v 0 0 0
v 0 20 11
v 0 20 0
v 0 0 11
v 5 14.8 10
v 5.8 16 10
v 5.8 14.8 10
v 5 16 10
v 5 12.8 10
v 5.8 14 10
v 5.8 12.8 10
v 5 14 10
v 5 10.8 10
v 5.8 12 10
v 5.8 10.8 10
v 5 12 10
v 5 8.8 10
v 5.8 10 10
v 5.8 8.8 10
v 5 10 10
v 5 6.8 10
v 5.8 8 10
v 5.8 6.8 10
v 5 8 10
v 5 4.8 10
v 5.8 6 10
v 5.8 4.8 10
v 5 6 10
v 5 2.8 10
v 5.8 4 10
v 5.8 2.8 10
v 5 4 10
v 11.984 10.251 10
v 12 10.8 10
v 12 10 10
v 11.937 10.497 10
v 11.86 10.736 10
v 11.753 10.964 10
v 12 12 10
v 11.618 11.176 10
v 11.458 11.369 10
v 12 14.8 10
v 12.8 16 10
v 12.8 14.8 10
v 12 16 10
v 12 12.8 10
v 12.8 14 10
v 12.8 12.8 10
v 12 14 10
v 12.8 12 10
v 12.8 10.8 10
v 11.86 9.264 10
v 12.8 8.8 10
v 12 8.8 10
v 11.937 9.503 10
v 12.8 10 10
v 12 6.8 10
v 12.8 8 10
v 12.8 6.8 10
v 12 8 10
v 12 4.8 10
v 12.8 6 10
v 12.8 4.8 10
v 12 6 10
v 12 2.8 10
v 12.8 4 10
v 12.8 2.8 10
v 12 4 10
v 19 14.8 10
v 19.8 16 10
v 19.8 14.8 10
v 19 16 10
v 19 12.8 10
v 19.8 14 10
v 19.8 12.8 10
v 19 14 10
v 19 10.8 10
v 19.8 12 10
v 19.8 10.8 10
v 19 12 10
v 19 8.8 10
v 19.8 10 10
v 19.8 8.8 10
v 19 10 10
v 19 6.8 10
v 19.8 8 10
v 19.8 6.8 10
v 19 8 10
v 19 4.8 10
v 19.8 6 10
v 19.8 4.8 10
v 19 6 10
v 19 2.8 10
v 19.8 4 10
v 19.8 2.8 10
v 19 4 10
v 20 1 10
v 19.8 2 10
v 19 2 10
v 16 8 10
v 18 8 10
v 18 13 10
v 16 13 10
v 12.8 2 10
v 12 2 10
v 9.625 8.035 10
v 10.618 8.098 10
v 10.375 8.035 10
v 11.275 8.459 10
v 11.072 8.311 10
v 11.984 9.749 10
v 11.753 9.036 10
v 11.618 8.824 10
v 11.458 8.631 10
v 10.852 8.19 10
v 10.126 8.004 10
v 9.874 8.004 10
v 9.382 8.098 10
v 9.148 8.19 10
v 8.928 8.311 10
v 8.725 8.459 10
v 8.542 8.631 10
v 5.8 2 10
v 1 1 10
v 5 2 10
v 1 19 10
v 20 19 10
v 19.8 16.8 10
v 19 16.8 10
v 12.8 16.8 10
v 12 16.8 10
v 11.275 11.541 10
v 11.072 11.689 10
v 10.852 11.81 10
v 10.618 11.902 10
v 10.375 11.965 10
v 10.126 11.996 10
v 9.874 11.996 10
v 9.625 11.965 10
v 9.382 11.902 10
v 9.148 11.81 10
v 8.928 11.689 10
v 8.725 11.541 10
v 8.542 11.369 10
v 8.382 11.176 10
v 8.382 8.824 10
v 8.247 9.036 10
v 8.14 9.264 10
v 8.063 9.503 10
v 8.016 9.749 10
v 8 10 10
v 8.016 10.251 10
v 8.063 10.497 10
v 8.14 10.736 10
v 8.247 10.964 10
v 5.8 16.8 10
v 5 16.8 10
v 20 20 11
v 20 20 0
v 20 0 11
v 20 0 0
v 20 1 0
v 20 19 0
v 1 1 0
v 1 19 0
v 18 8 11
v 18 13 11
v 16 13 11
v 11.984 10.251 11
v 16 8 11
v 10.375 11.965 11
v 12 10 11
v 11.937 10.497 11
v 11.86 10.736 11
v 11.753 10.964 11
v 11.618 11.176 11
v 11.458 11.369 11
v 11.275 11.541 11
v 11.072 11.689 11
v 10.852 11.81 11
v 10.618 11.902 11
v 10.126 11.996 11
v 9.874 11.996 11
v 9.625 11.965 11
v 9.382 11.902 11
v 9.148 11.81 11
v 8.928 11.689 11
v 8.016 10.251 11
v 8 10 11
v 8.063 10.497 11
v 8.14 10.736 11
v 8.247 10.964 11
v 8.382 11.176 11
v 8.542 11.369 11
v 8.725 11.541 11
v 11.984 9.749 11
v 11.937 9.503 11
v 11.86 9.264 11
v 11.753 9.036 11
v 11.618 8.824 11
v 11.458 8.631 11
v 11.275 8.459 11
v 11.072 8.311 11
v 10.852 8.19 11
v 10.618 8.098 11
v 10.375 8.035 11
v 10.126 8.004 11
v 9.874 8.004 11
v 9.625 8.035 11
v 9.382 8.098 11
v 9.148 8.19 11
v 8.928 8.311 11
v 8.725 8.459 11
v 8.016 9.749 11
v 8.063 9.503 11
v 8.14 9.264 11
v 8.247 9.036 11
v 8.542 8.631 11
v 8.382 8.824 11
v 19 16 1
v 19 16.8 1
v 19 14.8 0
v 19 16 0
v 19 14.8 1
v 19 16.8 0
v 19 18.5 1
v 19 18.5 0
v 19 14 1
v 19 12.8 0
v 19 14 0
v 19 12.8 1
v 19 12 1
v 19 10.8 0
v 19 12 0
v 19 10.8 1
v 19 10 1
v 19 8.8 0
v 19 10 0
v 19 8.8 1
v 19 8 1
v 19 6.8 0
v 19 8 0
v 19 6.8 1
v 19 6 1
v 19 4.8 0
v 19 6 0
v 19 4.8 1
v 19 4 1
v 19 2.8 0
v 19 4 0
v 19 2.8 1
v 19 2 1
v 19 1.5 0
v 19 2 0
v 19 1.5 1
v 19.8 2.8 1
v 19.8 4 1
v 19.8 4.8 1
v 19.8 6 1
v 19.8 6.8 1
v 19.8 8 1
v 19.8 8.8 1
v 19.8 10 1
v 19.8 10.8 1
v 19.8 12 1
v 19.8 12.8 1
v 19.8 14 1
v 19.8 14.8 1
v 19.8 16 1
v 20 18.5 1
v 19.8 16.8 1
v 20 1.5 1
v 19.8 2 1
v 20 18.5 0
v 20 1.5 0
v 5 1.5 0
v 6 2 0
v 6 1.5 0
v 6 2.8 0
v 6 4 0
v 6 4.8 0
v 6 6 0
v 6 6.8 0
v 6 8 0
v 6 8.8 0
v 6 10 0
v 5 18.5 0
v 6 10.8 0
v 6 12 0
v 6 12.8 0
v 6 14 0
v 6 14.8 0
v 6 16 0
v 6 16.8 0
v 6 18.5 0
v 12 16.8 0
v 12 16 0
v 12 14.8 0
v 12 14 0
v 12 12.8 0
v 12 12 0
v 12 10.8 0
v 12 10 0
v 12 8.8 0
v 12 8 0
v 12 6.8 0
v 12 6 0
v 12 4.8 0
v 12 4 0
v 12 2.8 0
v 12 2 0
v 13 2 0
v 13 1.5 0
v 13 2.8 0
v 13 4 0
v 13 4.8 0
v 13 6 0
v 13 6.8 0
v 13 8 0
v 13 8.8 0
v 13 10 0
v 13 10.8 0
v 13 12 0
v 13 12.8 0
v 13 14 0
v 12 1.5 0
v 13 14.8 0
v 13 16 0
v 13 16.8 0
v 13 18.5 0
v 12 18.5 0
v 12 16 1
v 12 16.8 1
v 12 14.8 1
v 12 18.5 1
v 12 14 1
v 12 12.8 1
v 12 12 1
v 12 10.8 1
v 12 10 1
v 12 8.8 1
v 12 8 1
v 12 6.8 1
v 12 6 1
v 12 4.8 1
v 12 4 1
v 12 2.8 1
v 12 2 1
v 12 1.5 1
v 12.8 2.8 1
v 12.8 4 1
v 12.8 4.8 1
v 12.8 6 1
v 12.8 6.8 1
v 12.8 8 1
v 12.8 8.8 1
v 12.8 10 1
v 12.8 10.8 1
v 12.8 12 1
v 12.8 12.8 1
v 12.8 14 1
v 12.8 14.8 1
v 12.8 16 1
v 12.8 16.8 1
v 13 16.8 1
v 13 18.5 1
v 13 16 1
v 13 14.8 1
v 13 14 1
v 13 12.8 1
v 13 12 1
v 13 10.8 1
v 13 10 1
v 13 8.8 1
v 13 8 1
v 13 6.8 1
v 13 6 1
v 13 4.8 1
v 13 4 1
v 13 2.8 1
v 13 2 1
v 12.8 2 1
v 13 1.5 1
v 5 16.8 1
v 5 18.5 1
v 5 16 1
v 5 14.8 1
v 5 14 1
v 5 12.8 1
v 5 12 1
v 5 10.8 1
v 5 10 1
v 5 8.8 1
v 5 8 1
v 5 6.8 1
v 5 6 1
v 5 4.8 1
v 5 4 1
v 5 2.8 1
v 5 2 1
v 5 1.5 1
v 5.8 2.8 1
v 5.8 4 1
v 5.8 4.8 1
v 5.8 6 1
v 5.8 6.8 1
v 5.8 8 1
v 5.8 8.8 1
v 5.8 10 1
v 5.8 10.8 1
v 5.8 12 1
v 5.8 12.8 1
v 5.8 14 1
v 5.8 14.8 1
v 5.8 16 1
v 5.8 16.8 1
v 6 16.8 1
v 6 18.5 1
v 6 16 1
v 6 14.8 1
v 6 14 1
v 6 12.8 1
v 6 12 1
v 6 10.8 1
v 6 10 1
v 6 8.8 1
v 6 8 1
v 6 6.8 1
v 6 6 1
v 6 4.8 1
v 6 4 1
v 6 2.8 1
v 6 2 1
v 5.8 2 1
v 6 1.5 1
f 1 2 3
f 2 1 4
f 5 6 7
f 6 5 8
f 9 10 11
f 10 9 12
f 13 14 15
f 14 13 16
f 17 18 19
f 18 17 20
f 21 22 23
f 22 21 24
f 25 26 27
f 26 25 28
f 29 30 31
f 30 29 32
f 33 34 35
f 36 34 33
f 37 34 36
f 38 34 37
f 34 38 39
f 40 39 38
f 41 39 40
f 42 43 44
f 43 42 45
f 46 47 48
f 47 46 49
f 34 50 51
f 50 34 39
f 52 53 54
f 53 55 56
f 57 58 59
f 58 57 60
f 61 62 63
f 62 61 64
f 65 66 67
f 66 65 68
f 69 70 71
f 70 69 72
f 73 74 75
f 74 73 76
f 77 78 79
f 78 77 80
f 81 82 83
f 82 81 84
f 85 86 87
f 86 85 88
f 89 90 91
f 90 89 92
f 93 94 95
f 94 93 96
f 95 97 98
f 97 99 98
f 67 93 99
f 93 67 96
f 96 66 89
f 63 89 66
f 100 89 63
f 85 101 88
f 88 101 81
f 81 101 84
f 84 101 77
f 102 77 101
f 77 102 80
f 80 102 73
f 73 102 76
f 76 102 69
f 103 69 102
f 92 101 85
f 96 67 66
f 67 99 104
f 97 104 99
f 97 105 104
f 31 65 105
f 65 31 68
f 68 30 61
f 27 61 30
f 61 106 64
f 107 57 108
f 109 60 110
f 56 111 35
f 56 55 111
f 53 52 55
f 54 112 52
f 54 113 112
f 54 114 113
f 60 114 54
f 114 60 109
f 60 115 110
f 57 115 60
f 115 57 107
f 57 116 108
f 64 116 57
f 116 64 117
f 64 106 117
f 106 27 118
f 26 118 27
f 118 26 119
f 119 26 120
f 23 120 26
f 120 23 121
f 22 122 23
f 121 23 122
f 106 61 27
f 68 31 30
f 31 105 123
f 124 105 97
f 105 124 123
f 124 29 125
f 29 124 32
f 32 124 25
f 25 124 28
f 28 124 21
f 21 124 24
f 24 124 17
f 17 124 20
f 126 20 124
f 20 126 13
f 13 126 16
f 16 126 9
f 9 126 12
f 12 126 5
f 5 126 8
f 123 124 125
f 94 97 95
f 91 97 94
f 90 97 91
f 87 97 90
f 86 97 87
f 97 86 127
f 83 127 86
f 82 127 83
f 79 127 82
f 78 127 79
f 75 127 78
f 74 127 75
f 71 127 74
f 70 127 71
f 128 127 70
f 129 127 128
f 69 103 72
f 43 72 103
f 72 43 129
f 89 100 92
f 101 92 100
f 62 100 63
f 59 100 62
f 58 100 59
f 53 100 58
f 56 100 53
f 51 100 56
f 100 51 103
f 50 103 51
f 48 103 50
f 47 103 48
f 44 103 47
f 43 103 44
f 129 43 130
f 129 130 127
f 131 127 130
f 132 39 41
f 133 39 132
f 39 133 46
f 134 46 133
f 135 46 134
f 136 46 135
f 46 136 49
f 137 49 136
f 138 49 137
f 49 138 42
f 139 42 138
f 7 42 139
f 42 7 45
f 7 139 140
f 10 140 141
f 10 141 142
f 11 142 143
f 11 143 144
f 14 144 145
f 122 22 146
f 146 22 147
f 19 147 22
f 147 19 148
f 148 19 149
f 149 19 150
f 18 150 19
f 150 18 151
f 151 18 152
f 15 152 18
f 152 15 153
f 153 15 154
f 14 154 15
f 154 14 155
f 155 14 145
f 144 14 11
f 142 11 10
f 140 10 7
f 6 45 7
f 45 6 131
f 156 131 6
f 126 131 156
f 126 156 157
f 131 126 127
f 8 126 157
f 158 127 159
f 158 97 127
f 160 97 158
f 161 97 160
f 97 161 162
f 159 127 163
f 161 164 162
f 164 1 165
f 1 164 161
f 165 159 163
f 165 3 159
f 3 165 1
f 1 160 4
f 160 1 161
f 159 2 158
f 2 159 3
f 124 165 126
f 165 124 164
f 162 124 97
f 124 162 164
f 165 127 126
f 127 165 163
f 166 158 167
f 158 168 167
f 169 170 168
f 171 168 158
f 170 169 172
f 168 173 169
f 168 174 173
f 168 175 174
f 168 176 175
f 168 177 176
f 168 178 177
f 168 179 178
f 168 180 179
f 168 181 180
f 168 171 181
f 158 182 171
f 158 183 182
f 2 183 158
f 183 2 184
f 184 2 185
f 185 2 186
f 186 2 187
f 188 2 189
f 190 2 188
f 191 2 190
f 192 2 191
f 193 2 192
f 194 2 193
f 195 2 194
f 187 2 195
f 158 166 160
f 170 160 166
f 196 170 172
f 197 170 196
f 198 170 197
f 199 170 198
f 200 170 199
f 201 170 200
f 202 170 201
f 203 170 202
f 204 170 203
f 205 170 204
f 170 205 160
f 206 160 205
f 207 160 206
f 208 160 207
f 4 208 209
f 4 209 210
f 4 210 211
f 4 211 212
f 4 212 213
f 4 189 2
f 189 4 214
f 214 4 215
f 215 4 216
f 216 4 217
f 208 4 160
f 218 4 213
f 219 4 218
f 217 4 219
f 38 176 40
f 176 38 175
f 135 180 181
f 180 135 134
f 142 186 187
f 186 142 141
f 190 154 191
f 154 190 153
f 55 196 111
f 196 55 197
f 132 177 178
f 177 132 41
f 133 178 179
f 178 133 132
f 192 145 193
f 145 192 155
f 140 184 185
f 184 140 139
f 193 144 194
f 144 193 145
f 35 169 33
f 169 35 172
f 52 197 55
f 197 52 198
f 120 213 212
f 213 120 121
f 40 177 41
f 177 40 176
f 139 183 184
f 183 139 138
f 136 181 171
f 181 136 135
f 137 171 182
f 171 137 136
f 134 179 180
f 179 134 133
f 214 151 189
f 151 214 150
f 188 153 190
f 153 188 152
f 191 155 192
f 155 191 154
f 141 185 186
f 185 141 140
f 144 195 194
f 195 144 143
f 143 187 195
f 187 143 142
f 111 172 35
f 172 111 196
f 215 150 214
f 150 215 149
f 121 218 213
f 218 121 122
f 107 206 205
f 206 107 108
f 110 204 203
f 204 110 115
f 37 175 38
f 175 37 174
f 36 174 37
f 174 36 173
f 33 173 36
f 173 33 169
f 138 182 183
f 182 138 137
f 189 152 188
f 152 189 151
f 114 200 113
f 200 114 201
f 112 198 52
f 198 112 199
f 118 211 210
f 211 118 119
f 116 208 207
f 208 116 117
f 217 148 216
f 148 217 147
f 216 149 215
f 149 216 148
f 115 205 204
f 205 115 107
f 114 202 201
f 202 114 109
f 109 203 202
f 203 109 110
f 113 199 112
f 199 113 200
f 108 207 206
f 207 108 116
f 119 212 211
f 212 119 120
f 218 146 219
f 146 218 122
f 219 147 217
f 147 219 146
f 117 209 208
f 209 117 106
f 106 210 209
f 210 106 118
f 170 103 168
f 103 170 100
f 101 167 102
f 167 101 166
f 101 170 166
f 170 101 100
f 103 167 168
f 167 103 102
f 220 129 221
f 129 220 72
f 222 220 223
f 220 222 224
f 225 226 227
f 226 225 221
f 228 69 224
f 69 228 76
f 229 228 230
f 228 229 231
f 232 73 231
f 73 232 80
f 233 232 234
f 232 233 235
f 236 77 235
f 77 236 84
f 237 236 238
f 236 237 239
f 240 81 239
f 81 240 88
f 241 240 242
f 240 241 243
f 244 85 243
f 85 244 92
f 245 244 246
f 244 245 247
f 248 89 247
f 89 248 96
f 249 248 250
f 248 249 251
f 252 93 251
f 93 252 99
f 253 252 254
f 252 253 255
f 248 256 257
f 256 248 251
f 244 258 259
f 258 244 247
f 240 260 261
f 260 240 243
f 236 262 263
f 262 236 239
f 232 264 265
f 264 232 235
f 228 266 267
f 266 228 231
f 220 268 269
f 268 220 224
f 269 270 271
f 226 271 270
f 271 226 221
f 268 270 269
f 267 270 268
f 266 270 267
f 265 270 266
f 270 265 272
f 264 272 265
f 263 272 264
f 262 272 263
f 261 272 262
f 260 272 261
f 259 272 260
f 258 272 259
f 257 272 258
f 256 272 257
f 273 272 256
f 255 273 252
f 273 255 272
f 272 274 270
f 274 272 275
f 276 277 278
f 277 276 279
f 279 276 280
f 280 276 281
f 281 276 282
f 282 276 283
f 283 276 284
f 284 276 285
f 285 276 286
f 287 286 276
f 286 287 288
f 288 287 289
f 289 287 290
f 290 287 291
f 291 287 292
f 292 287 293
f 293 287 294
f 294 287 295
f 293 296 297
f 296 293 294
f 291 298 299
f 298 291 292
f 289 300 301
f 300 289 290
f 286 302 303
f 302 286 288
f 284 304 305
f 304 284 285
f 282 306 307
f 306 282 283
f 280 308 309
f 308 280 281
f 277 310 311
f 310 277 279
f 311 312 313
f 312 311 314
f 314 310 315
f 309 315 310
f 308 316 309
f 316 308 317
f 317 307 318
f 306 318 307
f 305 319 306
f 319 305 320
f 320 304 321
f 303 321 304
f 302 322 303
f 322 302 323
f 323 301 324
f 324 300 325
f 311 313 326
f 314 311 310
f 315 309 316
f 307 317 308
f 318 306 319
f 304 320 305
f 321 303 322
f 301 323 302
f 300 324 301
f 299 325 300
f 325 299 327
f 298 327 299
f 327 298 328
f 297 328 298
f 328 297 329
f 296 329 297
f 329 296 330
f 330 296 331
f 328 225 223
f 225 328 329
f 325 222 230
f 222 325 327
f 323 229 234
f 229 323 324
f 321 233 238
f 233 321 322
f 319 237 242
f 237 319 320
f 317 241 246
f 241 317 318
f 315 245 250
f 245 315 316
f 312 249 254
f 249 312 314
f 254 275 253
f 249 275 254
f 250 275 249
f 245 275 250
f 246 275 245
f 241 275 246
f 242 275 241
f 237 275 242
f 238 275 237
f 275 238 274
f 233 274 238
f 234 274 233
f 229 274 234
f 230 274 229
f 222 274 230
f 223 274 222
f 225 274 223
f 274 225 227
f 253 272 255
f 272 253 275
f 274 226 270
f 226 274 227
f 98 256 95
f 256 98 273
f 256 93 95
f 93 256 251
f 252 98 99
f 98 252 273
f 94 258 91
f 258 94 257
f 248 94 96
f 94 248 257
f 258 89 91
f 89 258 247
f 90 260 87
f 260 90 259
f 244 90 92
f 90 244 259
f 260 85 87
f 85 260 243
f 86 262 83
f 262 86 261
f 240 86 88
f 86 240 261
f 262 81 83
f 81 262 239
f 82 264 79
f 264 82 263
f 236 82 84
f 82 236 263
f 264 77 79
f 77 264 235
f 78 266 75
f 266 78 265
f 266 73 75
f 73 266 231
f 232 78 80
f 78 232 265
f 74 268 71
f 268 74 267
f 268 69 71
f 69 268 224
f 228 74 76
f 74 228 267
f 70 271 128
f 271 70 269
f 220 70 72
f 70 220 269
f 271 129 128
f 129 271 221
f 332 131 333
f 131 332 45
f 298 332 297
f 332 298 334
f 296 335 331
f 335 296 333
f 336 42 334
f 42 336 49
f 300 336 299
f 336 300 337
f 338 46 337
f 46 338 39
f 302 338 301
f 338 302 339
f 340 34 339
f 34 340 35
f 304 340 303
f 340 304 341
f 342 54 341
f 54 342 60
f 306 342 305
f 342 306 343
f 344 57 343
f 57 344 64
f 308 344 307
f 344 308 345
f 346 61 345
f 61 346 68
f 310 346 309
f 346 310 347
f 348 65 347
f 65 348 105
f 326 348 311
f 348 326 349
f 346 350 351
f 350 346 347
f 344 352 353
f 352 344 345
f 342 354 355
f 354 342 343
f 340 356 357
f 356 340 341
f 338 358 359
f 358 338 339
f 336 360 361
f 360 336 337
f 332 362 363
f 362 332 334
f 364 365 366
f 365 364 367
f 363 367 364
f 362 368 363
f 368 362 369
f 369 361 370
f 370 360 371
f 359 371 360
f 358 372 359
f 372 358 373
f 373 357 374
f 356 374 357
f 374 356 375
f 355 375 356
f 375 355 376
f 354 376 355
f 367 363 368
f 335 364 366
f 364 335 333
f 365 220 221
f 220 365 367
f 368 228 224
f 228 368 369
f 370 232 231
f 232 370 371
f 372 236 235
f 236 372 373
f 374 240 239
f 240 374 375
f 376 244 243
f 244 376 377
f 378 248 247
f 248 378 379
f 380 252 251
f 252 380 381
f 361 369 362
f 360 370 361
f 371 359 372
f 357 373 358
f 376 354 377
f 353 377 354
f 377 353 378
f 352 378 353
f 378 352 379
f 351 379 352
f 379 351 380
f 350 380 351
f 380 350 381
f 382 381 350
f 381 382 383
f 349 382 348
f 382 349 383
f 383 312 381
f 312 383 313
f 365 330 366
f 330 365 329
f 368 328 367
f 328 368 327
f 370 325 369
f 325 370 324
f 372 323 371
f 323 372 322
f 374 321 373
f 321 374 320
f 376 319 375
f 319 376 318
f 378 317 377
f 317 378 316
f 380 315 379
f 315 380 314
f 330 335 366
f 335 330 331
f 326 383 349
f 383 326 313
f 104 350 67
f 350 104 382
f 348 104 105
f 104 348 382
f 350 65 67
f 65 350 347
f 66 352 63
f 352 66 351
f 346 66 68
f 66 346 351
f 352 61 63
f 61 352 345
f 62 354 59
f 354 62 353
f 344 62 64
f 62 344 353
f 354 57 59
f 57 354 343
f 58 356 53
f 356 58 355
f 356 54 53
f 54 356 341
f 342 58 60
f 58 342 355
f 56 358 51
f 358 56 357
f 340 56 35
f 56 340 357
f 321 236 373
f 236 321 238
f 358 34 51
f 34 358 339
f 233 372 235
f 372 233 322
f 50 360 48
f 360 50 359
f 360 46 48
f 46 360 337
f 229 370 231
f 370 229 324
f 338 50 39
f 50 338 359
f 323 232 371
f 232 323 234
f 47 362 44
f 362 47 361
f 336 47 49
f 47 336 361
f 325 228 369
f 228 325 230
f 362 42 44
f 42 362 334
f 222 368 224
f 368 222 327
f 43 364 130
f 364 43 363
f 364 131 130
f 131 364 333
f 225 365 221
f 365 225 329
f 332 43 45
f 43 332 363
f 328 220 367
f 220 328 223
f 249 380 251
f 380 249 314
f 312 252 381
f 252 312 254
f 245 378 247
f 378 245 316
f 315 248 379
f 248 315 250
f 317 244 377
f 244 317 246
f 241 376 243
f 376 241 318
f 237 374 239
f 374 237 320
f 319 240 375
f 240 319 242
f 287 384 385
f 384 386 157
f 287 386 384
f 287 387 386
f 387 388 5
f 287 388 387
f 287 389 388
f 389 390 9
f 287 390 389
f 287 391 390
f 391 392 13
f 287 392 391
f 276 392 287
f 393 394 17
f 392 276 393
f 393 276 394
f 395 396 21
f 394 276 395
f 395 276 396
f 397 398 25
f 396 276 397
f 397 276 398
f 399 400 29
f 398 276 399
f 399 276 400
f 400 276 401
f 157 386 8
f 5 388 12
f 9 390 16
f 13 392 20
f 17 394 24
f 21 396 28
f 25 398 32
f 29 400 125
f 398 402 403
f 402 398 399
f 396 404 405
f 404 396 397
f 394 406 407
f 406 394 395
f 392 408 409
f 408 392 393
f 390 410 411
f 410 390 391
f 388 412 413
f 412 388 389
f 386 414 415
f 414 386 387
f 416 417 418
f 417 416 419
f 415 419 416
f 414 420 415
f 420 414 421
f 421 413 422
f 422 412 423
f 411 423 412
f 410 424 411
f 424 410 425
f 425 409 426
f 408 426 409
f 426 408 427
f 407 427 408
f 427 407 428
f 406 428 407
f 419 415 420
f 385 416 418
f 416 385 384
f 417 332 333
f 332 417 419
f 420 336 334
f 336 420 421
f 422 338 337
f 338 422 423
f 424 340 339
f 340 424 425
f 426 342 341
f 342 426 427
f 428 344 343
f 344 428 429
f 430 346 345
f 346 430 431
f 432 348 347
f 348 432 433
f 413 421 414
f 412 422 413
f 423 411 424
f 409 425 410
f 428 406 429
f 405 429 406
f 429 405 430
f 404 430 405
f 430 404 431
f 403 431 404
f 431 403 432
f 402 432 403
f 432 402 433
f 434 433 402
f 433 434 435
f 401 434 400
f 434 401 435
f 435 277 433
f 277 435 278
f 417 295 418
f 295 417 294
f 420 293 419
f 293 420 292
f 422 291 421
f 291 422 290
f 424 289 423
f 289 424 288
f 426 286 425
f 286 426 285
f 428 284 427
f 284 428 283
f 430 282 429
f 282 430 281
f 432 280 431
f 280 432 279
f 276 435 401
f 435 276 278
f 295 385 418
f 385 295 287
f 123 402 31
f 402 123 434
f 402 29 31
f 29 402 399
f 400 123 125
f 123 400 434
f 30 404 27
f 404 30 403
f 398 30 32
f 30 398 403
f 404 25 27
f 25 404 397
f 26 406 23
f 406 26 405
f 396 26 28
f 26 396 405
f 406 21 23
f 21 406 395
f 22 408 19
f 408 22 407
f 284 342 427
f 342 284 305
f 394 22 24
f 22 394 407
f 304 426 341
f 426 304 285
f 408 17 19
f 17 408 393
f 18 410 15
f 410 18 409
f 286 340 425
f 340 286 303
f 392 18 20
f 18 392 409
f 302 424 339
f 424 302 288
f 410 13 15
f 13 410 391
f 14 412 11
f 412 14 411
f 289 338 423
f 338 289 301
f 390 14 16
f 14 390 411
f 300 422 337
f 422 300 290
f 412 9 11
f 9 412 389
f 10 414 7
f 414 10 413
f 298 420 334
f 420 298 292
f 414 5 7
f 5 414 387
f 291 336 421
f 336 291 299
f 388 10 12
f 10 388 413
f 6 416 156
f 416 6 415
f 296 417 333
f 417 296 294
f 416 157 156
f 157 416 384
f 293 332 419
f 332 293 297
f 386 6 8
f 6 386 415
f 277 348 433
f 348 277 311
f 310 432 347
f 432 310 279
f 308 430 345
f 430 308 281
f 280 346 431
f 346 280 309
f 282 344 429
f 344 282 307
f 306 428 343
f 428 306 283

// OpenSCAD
difference()
{
    cube([20,20,10]);
    translate([1,1,-1]) cube([22,18,20]);
}

translate([0,0,10])
{
    difference()
    {
        cube([20,20,1]);
        translate([10,10,-1]) cylinder(h=10, r1=2, r2=2, $fn=50);
        translate([16,8,-1]) cube([2,5,4]);
    }
}

translate([19,1.5,0]) cube([1,17,1]);

translate([19,2,0]) cube([.8,.8,10]);
translate([19,4,0]) cube([.8,.8,10]);
translate([19,6,0]) cube([.8,.8,10]);
translate([19,8,0]) cube([.8,.8,10]);
translate([19,10,0]) cube([.8,.8,10]);
translate([19,12,0]) cube([.8,.8,10]);
translate([19,14,0]) cube([.8,.8,10]);
translate([19,16,0]) cube([.8,.8,10]);



translate([12,1.5,0]) cube([1,17,1]);

translate([12,2,0]) cube([.8,.8,10]);
translate([12,4,0]) cube([.8,.8,10]);
translate([12,6,0]) cube([.8,.8,10]);
translate([12,8,0]) cube([.8,.8,10]);
translate([12,10,0]) cube([.8,.8,10]);
translate([12,12,0]) cube([.8,.8,10]);
translate([12,14,0]) cube([.8,.8,10]);
translate([12,16,0]) cube([.8,.8,10]);


translate([12,2,0]) cube([7,.8,1]);
translate([12,4,0]) cube([7,.8,1]);
translate([12,6,0]) cube([7,.8,1]);
translate([12,8,0]) cube([7,.8,1]);
translate([12,10,0]) cube([7,.8,1]);
translate([12,12,0]) cube([7,.8,1]);
translate([12,14,0]) cube([7,.8,1]);
translate([12,16,0]) cube([7,.8,1]);


translate([5,1.5,0]) cube([1,17,1]);

translate([5,2,0]) cube([.8,.8,10]);
translate([5,4,0]) cube([.8,.8,10]);
translate([5,6,0]) cube([.8,.8,10]);
translate([5,8,0]) cube([.8,.8,10]);
translate([5,10,0]) cube([.8,.8,10]);
translate([5,12,0]) cube([.8,.8,10]);
translate([5,14,0]) cube([.8,.8,10]);
translate([5,16,0]) cube([.8,.8,10]);

translate([5,2,0]) cube([7,.8,1]);
translate([5,4,0]) cube([7,.8,1]);
translate([5,6,0]) cube([7,.8,1]);
translate([5,8,0]) cube([7,.8,1]);
translate([5,10,0]) cube([7,.8,1]);
translate([5,12,0]) cube([7,.8,1]);
translate([5,14,0]) cube([7,.8,1]);
translate([5,16,0]) cube([7,.8,1]);
